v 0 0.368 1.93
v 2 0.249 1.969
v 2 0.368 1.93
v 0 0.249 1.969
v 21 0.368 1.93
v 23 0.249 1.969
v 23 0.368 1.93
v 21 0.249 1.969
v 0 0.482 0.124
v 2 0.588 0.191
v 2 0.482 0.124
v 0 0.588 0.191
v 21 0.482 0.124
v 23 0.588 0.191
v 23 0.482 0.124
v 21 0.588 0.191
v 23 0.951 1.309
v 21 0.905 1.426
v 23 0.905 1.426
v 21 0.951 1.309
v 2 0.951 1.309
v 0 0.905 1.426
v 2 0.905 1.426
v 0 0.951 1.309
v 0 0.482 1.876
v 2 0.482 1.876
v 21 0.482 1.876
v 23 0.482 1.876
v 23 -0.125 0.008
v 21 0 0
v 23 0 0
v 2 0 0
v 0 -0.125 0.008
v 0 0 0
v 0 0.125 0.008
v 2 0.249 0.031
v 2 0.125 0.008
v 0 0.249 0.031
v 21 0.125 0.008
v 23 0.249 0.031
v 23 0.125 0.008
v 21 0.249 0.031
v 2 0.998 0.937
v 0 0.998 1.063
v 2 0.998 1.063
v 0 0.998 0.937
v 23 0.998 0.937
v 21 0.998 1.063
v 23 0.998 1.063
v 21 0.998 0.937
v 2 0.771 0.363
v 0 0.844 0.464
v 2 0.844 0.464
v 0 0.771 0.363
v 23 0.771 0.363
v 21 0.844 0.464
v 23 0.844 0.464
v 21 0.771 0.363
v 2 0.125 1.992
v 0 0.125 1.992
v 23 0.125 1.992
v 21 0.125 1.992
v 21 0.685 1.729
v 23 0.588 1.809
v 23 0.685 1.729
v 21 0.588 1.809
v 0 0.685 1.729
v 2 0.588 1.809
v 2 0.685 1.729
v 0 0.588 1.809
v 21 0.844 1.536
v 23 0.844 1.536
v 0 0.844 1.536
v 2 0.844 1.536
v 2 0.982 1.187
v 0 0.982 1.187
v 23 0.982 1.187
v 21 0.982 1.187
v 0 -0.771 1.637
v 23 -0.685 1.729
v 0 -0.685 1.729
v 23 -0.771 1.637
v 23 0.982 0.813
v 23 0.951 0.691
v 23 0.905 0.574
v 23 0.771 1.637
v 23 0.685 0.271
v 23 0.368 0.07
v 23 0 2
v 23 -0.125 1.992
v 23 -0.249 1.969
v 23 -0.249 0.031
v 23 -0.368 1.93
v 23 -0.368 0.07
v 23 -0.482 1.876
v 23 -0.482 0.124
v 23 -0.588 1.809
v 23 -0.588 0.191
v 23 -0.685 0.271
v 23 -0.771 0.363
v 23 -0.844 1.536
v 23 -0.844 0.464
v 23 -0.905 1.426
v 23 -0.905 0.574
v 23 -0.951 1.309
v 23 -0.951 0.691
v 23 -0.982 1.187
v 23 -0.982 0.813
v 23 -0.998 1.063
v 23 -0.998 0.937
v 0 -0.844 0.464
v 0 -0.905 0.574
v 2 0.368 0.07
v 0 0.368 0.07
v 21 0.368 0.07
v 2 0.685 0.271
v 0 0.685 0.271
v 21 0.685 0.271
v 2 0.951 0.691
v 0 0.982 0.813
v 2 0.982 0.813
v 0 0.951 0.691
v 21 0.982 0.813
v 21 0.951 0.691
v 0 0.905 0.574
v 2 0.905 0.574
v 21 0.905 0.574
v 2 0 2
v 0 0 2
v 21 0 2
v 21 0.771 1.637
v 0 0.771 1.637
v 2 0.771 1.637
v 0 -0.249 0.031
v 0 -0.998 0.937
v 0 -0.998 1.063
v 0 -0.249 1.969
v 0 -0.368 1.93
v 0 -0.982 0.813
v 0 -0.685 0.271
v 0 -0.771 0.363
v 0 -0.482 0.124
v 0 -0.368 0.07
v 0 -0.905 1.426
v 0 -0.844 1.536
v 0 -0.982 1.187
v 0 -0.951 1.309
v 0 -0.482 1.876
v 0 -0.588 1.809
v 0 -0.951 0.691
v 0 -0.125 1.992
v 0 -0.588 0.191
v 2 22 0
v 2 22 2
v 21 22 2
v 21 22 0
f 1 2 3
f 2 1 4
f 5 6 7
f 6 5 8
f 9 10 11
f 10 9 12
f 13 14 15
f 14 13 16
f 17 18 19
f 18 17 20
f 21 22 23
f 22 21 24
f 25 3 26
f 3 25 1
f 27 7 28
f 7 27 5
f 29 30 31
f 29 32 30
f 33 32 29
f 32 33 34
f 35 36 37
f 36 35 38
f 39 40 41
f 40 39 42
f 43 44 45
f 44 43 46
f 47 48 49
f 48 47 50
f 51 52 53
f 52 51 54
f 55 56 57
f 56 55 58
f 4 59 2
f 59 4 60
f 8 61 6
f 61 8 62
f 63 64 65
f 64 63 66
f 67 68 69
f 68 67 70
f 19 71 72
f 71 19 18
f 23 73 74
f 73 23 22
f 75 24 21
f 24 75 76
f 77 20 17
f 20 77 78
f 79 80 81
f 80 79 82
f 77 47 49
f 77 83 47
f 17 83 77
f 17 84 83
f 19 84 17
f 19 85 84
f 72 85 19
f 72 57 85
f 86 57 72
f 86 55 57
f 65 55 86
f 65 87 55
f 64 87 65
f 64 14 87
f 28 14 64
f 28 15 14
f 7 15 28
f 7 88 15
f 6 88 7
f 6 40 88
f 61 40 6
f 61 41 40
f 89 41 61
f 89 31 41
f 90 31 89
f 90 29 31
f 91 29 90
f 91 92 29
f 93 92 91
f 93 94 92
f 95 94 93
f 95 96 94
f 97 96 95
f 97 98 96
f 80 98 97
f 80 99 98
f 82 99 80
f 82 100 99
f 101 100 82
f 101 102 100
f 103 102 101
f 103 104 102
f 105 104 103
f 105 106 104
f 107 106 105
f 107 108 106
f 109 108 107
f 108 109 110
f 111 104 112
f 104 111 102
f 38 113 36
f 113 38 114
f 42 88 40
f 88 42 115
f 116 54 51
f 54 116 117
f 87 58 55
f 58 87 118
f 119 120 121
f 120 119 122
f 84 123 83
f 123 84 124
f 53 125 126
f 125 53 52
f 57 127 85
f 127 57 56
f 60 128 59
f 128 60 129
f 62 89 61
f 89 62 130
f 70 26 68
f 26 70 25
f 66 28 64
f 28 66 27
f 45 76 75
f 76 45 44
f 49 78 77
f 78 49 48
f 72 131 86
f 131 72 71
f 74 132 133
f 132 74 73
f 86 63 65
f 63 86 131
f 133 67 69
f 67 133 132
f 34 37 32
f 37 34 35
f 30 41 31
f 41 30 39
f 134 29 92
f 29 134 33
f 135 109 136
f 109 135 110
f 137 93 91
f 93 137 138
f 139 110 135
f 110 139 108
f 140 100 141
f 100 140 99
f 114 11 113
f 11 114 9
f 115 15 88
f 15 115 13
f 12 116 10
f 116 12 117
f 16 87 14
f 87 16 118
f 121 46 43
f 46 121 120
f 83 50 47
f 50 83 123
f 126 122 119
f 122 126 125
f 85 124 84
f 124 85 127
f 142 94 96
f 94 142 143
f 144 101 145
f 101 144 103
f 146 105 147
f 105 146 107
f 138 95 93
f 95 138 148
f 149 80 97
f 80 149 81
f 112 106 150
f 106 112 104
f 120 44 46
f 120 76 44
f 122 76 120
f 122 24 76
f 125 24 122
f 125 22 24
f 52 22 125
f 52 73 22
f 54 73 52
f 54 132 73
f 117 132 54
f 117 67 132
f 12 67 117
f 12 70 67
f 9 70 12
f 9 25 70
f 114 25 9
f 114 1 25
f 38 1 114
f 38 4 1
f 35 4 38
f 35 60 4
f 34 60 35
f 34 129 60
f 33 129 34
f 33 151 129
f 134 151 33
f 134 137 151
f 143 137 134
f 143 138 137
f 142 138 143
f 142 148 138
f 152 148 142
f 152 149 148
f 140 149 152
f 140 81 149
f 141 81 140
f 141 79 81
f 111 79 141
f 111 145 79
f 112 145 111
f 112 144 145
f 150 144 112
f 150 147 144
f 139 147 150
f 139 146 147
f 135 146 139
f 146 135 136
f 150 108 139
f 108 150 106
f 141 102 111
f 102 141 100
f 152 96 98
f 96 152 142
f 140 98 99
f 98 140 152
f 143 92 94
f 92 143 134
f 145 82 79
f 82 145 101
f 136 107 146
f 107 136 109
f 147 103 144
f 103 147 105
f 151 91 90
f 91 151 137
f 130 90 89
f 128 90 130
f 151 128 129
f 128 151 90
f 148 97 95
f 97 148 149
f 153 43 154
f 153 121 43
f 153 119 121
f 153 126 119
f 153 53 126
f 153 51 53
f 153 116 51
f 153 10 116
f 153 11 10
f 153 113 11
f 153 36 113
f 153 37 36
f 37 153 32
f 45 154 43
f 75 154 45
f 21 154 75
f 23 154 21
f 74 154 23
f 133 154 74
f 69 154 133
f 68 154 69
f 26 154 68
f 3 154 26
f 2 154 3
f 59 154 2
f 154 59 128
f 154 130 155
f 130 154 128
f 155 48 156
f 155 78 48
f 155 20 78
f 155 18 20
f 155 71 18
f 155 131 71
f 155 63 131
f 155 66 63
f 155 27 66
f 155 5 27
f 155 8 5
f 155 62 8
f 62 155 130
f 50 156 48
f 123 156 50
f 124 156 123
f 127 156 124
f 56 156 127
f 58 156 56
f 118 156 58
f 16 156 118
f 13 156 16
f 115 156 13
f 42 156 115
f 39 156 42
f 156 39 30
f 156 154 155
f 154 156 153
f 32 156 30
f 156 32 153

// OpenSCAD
$fn=50;
module Flapper() {
  base = 0.0;
  length = 19.0;
  width = 22.0;
  thickness = 2.0;
  th2 = thickness/2.0;
  x1 = 24.0;
  y1 = 11.5;
    union(){
      rotate([0.0,90.0,0.0])translate([-1.0,0.0,0.0])cylinder(r=th2,h=x1-th2);
      translate([2.0,0.0,0.0])cube([length,width,thickness]);
    };
};
Flapper();
